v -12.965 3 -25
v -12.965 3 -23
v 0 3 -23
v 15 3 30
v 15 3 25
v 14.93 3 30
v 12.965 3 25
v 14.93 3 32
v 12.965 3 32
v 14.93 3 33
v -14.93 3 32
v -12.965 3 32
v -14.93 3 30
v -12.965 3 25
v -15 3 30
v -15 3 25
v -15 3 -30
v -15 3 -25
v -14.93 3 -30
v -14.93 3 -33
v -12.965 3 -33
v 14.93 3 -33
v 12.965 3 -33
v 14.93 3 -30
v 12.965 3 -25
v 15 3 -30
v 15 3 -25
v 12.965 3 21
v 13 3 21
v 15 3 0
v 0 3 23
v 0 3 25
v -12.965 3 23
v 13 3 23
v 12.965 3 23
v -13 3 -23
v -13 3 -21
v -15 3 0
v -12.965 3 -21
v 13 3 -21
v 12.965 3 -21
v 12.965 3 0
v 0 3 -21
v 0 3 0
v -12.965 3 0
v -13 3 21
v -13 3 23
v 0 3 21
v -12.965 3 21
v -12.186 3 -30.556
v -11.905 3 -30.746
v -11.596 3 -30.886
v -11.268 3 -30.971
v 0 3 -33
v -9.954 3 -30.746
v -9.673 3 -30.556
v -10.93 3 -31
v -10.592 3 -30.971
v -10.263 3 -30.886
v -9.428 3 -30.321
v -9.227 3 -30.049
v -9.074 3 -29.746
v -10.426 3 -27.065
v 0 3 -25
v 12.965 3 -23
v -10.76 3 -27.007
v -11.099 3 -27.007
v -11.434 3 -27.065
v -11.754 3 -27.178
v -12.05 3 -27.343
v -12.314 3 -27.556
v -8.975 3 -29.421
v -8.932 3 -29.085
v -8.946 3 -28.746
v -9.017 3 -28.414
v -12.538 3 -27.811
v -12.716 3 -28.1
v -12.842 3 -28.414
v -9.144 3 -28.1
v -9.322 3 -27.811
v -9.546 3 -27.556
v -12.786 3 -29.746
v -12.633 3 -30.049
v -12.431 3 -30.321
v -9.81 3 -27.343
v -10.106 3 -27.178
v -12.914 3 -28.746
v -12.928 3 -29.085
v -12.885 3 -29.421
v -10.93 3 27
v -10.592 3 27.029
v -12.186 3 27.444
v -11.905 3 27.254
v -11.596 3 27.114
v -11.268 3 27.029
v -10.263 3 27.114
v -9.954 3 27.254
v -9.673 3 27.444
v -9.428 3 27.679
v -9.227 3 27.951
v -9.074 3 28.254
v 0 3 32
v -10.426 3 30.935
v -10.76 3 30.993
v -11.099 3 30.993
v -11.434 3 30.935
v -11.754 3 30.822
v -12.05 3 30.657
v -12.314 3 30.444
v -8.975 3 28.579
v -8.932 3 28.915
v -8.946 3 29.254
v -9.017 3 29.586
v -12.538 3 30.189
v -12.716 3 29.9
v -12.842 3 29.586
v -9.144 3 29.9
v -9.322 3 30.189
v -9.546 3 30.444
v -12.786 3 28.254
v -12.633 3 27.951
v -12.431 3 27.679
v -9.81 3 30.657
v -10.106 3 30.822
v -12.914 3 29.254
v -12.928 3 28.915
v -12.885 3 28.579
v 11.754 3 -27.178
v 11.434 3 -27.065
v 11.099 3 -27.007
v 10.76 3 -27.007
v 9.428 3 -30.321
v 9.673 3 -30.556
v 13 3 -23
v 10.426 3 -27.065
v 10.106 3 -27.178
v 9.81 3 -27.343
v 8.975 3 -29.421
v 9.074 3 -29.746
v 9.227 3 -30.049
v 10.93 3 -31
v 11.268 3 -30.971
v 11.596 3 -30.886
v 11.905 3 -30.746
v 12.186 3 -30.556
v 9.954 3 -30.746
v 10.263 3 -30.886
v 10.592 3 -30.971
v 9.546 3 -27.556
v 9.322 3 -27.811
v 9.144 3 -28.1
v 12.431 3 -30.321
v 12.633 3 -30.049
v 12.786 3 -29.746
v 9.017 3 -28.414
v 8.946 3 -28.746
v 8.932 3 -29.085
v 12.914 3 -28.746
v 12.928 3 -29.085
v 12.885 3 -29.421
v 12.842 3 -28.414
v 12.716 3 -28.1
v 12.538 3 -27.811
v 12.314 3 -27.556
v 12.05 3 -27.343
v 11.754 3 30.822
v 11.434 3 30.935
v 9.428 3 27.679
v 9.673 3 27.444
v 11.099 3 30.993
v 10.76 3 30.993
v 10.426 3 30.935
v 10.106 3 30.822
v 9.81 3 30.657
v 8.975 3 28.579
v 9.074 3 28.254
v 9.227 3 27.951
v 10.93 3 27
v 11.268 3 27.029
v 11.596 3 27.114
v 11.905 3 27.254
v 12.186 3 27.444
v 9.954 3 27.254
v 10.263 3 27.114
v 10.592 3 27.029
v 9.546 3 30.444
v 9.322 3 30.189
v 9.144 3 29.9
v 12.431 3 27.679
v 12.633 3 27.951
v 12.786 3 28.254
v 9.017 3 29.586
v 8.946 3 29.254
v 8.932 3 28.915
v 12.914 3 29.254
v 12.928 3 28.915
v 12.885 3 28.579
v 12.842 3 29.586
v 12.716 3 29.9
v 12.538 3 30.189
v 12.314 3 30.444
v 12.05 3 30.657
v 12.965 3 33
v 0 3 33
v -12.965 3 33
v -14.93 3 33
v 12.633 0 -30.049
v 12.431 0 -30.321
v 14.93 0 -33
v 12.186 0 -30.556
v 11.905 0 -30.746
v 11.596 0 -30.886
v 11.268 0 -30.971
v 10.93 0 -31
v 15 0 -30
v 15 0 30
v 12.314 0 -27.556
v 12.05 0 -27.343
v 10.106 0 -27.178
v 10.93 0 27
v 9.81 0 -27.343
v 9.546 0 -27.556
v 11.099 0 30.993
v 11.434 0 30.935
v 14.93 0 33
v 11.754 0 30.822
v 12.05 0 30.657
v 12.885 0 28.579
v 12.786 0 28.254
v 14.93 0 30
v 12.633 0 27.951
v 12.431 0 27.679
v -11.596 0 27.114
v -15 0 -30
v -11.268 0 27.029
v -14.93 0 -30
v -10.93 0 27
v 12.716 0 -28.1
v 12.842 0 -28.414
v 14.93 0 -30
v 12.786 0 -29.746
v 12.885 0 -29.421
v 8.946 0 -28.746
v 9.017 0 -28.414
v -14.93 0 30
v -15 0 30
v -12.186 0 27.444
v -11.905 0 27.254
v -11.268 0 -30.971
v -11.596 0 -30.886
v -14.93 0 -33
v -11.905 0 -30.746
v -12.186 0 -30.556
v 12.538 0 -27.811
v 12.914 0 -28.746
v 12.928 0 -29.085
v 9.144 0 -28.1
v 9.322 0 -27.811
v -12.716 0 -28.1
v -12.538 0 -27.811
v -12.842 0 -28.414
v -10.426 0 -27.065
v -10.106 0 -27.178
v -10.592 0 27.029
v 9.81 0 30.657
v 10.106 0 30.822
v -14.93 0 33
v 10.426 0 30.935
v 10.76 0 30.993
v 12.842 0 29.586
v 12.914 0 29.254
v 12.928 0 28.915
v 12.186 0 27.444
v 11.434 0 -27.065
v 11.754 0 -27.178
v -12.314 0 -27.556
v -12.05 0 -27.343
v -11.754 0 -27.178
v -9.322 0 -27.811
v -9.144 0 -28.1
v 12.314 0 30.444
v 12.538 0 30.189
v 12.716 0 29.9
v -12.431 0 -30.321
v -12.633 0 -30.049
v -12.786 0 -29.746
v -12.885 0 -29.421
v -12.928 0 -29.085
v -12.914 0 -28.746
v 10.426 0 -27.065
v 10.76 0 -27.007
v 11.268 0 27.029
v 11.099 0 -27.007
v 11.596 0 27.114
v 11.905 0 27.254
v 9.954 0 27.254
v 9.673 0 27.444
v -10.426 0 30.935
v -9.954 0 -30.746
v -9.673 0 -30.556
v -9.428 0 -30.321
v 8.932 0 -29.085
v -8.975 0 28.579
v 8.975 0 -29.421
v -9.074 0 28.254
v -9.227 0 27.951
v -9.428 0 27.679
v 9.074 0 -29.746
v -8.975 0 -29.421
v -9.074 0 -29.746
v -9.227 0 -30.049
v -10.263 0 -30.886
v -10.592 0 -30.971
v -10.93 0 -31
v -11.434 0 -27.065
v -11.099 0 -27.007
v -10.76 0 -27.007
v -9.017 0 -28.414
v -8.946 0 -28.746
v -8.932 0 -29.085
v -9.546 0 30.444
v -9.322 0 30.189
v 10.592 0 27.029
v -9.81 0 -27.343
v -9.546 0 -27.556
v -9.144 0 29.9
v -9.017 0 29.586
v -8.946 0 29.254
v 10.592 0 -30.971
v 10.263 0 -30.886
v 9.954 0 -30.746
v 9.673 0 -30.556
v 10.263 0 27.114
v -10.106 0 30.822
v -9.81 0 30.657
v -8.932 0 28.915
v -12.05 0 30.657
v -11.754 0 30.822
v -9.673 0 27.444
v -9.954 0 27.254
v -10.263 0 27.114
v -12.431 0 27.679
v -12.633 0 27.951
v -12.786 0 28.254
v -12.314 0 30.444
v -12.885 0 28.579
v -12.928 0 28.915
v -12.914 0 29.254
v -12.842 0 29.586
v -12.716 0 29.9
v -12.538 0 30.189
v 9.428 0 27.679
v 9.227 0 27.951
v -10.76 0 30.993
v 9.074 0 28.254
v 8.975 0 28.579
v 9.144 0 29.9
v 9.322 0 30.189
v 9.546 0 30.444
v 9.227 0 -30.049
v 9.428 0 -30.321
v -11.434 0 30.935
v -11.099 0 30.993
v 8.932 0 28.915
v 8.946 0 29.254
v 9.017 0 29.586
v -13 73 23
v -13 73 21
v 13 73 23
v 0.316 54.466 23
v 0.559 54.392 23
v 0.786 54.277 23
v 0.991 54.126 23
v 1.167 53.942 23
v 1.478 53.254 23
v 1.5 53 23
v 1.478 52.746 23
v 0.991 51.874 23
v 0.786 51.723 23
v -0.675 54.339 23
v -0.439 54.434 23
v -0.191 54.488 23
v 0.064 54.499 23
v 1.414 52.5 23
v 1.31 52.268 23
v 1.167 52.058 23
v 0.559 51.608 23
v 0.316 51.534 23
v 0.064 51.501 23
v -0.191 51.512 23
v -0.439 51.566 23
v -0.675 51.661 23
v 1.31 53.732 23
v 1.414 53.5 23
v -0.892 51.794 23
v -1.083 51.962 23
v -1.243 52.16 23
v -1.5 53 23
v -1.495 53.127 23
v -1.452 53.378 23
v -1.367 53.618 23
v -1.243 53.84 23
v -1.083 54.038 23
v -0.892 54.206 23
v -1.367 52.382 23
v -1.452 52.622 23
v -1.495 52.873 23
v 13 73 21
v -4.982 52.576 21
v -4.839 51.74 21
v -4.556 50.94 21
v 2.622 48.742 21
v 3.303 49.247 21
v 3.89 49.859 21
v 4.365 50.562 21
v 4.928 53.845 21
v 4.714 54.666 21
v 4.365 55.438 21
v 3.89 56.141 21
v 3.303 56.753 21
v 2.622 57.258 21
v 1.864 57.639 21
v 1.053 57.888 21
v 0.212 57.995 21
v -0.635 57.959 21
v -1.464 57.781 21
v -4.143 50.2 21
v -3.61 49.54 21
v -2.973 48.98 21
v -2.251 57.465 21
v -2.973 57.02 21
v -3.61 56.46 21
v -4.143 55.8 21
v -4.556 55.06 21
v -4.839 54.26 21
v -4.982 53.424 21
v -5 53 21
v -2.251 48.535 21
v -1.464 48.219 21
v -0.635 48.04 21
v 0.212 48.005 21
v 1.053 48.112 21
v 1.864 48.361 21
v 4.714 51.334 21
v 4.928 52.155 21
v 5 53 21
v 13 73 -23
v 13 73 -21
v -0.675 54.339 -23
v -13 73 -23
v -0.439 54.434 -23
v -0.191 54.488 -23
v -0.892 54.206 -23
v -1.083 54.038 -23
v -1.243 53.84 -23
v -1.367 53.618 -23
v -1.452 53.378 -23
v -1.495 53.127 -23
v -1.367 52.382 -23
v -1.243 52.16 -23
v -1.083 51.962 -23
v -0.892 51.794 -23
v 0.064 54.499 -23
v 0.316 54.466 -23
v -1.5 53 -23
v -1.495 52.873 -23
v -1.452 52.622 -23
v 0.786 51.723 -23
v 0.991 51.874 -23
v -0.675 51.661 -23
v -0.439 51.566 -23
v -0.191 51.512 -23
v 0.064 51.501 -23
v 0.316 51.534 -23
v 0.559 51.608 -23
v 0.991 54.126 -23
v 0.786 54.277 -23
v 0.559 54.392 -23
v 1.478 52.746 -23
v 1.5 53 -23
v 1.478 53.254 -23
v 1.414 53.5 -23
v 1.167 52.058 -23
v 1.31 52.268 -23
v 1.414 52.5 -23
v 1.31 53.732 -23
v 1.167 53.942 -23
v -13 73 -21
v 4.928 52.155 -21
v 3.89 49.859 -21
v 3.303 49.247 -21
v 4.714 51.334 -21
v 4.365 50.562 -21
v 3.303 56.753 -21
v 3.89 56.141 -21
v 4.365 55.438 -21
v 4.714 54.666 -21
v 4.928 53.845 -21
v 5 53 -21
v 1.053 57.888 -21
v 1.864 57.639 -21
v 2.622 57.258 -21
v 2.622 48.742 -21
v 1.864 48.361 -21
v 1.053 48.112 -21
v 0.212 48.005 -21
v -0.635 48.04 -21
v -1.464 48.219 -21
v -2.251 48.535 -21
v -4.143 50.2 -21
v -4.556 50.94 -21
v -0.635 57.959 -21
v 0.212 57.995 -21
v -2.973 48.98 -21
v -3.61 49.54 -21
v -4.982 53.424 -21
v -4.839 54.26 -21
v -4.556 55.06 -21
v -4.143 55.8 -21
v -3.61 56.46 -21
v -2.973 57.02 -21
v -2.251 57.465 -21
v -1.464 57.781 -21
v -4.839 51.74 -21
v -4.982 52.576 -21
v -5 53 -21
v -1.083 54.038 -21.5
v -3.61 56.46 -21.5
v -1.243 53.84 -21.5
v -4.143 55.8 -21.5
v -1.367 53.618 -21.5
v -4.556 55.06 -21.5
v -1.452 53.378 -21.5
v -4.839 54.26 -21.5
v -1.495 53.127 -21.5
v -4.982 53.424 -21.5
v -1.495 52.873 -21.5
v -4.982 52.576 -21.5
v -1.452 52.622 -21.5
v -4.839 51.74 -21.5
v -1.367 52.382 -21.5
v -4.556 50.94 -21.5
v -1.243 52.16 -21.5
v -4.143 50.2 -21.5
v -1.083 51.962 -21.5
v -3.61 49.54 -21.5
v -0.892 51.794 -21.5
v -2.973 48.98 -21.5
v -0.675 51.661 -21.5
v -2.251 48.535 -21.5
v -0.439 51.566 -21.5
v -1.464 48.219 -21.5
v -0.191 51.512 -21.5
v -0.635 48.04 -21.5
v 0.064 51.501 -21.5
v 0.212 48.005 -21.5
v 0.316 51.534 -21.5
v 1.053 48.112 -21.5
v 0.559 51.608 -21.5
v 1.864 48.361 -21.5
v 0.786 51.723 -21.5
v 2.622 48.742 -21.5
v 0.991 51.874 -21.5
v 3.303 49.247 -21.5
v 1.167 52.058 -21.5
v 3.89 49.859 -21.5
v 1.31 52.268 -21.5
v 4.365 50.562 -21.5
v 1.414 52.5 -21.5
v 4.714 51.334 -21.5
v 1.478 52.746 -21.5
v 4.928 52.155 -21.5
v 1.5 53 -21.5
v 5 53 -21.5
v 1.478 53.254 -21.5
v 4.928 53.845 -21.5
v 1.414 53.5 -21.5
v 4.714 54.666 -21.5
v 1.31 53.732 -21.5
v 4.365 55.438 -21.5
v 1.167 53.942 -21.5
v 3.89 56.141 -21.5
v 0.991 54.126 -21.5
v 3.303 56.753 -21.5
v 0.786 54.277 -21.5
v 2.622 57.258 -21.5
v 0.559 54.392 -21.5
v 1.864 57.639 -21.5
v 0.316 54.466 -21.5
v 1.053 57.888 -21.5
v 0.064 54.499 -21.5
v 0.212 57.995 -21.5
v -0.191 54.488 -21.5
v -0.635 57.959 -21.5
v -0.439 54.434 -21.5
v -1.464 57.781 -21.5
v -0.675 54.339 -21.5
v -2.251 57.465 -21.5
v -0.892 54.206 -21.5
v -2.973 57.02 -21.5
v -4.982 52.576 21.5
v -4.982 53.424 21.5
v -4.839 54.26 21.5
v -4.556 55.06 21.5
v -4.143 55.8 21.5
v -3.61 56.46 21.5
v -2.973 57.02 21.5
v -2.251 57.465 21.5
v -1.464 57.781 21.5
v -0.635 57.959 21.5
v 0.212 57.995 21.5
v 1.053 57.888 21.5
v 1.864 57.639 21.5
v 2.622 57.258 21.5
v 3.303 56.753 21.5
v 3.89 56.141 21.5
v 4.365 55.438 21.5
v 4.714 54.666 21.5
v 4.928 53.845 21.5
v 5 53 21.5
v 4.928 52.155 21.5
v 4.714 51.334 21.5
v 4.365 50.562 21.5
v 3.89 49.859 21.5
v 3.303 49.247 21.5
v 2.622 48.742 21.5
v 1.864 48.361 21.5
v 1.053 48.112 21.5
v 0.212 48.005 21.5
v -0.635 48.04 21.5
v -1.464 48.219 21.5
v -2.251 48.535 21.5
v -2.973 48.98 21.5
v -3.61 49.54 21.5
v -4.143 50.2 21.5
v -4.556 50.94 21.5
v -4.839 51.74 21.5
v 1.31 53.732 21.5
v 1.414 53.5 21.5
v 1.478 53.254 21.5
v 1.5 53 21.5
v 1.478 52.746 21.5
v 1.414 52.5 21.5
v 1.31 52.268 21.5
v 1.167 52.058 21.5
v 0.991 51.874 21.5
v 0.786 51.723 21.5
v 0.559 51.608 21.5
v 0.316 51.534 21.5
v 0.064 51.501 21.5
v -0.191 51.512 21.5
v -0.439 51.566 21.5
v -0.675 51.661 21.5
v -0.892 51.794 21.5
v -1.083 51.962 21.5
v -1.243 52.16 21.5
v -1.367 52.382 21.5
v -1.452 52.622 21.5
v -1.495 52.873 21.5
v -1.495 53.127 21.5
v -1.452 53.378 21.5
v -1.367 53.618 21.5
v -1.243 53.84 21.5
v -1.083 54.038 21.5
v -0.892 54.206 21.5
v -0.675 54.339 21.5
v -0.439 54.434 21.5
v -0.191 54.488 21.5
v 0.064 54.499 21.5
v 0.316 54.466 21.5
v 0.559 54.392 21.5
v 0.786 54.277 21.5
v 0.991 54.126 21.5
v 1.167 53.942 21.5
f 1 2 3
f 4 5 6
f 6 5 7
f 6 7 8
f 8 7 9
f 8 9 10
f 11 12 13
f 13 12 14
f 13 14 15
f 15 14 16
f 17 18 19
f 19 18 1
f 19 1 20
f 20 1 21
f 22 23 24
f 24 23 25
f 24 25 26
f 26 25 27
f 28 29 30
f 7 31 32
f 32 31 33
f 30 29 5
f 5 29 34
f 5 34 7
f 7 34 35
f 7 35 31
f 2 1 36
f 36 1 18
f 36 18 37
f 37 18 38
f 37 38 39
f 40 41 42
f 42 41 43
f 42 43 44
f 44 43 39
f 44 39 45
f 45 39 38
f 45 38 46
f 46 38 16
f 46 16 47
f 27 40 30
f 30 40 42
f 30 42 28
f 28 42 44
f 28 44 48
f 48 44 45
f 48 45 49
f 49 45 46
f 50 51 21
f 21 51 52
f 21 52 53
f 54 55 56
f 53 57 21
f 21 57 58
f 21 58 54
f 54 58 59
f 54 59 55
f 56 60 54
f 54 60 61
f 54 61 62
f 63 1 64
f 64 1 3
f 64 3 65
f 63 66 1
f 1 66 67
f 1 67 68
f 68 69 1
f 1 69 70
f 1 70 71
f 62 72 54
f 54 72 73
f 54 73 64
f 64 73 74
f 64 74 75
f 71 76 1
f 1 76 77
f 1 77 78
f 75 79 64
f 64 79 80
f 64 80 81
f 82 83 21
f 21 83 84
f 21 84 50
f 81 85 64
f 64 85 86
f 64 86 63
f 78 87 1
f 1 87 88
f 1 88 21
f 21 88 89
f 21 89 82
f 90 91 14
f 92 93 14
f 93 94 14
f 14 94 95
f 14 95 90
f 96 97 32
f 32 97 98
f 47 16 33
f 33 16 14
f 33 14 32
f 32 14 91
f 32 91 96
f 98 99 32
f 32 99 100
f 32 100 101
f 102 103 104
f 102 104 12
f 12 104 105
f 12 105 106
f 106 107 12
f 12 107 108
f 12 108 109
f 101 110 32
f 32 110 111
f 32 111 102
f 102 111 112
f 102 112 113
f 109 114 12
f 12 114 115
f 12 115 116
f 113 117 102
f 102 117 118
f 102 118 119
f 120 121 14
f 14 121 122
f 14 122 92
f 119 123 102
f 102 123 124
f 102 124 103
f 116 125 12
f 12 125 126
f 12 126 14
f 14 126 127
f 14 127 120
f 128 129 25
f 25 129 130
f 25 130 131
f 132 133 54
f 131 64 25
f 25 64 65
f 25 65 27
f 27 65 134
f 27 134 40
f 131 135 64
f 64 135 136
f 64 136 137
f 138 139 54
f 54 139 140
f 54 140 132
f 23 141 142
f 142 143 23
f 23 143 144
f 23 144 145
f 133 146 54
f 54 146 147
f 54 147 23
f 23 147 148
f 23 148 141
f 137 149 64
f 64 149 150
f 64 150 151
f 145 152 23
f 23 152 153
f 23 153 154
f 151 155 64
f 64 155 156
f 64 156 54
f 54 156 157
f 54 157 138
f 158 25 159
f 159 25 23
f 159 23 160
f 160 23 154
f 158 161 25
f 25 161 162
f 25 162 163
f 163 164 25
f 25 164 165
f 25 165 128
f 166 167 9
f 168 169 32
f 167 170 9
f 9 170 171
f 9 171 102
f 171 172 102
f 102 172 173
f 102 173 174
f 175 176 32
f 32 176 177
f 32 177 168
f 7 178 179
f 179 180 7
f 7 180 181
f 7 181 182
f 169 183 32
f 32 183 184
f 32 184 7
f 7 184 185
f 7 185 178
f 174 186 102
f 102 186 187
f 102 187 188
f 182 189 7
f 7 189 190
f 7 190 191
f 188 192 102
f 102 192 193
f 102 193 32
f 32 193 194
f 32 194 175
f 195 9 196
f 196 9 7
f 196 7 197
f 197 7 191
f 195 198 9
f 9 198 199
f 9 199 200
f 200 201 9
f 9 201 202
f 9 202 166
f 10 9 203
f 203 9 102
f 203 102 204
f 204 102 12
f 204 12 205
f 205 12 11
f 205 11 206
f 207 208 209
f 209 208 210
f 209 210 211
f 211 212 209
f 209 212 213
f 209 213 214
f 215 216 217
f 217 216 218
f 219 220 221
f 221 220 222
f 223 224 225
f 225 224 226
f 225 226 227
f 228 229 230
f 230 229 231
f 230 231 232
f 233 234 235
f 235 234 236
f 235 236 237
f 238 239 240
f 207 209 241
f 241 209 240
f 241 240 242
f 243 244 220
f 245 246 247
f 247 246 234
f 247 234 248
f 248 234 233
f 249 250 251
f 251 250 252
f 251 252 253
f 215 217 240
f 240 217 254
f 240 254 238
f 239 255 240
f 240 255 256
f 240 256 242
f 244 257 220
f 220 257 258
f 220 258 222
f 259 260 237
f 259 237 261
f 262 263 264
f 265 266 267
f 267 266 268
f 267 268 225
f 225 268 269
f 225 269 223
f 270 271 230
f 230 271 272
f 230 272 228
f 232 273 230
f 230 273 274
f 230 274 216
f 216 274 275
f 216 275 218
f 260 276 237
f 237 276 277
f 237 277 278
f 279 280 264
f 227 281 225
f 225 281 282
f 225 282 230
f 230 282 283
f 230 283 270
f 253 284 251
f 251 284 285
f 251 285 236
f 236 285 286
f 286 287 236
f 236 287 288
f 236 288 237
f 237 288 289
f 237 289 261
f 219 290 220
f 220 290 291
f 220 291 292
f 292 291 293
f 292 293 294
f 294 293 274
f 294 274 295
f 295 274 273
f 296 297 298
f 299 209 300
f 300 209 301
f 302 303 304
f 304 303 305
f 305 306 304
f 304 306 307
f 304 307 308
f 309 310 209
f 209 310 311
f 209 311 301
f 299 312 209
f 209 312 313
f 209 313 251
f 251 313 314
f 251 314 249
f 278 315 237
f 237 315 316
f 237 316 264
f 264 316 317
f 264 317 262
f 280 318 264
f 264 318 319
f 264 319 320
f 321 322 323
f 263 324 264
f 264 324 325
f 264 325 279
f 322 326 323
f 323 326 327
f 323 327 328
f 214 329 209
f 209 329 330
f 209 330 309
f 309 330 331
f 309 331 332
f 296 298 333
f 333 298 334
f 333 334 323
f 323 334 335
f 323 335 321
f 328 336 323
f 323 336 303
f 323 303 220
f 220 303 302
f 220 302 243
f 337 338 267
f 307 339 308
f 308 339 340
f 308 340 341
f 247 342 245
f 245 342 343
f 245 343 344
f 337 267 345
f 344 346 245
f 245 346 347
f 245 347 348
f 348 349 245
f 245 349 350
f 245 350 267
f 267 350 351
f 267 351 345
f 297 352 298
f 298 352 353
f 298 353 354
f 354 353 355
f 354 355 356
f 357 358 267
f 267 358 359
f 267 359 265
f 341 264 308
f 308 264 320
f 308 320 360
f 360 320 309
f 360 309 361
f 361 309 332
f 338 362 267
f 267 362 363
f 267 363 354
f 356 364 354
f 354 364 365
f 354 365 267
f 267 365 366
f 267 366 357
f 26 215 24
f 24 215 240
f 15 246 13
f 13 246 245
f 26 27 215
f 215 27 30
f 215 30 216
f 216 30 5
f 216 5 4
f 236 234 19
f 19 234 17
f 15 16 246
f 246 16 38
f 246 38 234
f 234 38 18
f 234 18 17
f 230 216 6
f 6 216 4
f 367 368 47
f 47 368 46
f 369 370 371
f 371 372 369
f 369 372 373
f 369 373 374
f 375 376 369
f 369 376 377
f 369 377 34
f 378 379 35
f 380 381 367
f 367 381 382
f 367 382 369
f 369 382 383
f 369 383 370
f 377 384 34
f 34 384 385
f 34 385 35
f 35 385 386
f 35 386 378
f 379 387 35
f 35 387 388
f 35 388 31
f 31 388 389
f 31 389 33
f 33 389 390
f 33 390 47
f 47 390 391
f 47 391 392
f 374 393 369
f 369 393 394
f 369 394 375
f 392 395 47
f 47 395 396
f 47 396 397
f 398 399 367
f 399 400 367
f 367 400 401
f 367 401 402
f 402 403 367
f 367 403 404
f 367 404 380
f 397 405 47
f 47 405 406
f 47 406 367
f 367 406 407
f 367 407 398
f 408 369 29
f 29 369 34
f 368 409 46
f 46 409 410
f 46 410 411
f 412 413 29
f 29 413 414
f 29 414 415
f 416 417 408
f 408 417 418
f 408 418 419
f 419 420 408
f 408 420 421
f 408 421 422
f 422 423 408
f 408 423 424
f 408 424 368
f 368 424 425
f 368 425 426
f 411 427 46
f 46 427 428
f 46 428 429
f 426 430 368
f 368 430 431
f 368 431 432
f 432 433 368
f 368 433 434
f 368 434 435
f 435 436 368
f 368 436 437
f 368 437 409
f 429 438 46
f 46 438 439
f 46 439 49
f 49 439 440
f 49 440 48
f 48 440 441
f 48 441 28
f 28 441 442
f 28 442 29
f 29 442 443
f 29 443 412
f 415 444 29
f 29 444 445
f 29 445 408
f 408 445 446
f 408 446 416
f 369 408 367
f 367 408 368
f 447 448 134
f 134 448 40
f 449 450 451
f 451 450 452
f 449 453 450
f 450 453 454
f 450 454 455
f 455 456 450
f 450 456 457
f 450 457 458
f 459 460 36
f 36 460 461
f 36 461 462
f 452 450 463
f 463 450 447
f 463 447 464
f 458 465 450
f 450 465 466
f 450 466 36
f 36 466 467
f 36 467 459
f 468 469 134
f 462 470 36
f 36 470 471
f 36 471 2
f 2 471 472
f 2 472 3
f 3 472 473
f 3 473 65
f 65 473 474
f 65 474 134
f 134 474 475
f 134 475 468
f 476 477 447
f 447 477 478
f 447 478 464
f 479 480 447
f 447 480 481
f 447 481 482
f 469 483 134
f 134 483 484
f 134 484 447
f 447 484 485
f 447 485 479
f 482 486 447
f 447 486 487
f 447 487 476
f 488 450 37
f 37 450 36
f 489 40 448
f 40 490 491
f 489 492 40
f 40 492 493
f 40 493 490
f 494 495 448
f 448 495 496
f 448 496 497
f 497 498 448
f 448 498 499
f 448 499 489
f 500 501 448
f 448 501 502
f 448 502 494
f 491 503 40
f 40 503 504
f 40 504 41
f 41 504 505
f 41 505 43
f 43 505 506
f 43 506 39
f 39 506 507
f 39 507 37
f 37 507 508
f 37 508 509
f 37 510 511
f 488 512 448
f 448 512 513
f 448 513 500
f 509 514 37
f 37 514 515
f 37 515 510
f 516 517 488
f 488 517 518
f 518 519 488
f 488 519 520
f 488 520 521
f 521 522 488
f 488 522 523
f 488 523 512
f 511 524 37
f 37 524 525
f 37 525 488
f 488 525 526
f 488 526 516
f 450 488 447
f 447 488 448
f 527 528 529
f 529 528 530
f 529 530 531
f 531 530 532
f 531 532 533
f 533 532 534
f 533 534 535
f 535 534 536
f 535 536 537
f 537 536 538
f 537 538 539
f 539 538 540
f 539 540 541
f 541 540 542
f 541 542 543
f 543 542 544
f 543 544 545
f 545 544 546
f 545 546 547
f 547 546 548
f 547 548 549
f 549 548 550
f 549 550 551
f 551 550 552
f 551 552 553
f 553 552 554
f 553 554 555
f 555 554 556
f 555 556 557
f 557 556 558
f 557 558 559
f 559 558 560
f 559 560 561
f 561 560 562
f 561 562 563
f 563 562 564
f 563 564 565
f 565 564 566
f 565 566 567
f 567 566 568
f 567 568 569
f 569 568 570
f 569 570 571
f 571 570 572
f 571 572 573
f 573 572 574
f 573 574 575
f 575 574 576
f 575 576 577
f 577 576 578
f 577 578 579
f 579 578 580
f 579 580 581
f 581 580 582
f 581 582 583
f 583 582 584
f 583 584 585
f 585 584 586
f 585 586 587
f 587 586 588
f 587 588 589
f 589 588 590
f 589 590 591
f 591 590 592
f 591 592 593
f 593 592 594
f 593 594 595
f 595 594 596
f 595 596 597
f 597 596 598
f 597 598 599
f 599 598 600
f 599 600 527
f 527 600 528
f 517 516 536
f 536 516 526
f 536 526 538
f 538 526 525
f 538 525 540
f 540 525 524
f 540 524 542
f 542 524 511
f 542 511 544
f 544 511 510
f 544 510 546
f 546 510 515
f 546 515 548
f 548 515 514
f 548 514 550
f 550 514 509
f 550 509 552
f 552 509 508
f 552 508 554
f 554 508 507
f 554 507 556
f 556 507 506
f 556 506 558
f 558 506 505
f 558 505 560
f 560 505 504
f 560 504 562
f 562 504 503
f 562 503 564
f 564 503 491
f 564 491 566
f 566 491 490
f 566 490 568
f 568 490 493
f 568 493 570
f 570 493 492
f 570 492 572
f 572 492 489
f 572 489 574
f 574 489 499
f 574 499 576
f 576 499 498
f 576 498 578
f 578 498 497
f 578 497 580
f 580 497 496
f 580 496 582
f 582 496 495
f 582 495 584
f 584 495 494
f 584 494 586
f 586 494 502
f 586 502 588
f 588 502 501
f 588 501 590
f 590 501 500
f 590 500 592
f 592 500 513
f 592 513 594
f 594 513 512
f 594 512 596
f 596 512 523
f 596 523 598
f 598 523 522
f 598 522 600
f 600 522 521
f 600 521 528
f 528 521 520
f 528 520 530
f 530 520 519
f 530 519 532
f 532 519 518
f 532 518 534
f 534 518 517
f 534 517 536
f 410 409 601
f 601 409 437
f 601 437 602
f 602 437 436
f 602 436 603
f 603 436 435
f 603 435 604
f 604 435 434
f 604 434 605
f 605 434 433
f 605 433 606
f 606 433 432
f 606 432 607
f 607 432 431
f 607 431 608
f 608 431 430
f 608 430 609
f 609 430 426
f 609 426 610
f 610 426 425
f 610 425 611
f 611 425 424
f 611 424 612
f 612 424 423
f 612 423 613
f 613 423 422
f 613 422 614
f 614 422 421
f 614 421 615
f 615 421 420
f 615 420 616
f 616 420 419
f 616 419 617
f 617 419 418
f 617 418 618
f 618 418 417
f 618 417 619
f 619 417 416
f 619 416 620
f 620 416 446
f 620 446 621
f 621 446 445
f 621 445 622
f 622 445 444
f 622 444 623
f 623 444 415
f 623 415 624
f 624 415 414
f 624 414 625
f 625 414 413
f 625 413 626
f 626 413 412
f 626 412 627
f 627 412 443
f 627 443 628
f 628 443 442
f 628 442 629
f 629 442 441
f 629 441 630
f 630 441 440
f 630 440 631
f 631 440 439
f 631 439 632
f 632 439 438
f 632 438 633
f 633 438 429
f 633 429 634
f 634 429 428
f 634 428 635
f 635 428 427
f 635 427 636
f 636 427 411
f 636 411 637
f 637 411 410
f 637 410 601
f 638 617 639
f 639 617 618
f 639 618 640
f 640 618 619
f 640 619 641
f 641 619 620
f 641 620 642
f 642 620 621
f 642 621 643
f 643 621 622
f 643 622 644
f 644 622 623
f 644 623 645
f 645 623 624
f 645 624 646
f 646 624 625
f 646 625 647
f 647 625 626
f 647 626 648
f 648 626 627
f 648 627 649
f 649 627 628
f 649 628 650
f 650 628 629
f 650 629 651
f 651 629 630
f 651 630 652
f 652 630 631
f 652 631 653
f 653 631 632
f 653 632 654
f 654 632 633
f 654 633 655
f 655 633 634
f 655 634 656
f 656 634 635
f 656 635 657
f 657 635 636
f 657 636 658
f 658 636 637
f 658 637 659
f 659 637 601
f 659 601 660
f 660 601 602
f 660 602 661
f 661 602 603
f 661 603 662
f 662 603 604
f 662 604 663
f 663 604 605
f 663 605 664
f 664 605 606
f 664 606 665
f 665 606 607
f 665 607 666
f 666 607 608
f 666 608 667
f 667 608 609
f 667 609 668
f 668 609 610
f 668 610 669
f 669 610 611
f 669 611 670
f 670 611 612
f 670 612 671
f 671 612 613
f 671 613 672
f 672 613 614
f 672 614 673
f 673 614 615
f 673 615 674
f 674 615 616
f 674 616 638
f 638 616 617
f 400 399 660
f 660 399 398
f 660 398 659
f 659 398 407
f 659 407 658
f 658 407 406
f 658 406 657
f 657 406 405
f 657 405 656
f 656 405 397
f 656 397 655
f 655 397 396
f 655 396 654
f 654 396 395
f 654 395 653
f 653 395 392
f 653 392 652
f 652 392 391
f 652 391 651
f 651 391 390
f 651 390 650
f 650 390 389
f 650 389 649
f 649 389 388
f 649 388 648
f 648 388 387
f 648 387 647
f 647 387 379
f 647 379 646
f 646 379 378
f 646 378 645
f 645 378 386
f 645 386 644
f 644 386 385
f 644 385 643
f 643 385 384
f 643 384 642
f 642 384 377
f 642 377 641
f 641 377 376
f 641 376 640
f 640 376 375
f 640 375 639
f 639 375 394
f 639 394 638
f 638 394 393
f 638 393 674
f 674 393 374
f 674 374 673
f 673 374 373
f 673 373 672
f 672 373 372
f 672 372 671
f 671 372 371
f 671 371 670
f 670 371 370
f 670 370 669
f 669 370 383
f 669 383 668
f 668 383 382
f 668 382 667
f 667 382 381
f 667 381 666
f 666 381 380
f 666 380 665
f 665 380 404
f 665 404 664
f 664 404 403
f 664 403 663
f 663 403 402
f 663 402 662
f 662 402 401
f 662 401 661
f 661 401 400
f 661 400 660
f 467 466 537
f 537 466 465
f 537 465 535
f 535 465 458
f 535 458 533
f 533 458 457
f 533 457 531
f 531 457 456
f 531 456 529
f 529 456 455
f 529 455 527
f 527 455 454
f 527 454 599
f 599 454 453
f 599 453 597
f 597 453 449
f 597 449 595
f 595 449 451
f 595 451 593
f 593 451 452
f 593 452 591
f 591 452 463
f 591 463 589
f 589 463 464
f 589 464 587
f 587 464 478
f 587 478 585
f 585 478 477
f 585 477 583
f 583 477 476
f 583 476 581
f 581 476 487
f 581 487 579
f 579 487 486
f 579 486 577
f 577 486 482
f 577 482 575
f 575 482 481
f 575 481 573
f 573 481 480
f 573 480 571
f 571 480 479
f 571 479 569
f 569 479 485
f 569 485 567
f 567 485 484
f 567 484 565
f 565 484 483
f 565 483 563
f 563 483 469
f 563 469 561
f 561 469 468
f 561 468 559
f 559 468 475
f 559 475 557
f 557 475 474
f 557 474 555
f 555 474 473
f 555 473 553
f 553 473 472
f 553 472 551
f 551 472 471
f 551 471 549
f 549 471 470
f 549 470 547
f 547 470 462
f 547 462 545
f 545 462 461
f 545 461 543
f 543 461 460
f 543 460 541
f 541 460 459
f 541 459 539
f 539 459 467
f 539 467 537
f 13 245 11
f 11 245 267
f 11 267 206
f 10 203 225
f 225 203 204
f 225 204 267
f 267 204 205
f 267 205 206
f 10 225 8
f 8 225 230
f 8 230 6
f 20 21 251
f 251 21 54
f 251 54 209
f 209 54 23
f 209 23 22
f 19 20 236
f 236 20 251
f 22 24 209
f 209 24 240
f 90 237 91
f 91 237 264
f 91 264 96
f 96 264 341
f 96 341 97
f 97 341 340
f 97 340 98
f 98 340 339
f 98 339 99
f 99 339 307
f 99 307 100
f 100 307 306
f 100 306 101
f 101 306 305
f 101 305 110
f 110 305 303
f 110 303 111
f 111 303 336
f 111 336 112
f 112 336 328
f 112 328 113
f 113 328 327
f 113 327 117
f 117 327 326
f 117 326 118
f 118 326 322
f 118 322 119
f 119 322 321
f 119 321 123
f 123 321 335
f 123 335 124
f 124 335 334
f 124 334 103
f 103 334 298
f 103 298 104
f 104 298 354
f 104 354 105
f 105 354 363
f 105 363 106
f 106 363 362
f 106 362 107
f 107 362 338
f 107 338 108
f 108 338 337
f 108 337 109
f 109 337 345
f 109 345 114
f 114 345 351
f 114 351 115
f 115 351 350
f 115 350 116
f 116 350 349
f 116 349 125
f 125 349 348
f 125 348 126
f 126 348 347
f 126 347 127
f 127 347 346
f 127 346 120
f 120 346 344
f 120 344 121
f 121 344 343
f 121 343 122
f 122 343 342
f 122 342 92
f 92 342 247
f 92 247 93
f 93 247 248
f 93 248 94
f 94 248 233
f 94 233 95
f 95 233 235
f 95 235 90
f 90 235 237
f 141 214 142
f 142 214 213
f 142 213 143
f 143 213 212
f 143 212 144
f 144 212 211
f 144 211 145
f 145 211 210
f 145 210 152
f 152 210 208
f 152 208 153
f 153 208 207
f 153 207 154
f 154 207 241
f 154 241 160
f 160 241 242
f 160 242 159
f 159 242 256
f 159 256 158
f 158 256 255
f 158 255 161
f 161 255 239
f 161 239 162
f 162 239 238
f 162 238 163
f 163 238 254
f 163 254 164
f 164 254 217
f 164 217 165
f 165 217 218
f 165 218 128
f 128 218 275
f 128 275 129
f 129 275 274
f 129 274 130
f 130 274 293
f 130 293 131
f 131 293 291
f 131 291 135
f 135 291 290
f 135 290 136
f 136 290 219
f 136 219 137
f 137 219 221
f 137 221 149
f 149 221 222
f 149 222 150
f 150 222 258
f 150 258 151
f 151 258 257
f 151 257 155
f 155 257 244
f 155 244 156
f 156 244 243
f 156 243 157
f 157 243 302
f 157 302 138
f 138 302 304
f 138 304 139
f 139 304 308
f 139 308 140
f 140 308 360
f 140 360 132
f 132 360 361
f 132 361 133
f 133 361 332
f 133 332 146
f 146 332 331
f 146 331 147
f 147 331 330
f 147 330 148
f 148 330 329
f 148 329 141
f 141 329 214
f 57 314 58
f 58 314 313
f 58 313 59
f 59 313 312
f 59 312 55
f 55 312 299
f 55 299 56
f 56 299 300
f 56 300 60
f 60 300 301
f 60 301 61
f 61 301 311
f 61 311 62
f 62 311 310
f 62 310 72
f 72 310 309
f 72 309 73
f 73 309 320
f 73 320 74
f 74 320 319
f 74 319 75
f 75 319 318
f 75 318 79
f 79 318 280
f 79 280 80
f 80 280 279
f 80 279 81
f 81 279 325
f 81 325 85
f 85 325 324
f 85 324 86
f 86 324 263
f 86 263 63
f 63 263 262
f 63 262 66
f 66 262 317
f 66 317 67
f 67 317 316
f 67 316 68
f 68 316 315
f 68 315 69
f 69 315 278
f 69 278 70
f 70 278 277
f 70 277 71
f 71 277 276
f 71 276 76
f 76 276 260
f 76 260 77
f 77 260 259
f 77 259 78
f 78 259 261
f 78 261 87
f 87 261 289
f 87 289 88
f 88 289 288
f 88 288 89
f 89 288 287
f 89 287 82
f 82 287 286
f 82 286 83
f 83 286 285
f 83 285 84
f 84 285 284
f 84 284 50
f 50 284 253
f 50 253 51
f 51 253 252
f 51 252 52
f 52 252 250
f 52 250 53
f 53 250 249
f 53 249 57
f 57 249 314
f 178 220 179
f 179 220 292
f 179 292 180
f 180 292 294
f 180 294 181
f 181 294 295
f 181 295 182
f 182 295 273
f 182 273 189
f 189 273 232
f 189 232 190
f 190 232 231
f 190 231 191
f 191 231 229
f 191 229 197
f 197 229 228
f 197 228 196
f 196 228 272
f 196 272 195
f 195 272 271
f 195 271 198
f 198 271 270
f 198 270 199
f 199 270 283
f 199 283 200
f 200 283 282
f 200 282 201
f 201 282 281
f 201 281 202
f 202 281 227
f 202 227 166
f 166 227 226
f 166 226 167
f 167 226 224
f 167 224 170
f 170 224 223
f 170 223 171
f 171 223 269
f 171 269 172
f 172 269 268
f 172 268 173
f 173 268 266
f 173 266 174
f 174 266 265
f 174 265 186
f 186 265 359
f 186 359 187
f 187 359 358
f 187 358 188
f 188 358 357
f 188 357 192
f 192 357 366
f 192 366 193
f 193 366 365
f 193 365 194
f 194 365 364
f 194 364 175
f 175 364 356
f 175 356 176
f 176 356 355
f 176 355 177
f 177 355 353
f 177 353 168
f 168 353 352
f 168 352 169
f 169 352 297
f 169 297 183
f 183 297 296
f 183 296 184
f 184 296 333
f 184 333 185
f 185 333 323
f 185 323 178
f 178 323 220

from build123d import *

# Parameters (mm, degrees)
SKETCH_1_W               = 30
SKETCH_1_H               = 60
EXTRUDE_1_DEPTH          = 3
SKETCH_2_W               = 26
SKETCH_2_H               = 2
EXTRUDE_3_DEPTH          = 70
SKETCH_4_R               = 5
CUT_EXTRUDE_2_DEPTH      = 21.5
CUT_EXTRUDE_3_DEPTH      = 91.58835466
CUT_EXTRUDE_3_DEPTH_BACK = 91.58835466
SKETCH_5_R               = 1.5
SKETCH_7_W               = 29.85954739
SKETCH_7_H               = 3
EXTRUDE_4_DEPTH          = 3
CUT_EXTRUDE_5_DEPTH      = 82.504601097
CUT_EXTRUDE_5_DEPTH_BACK = 82.504601097
SKETCH_8_R               = 2


with BuildPart() as part:
    # 草图1 → 凸台-拉伸1 (new body)
    with BuildSketch(Plane(origin=(0, 0, 0), x_dir=(1, 0, 0), z_dir=(0, 1, 0))):
        Rectangle(SKETCH_1_W, SKETCH_1_H)
    extrude(amount=EXTRUDE_1_DEPTH)

    # 草图2 → 凸台-拉伸3 (add)
    with BuildSketch(Plane(origin=(0, 3, 0), x_dir=(1, 0, 0), z_dir=(0, 1, 0))):
        with Locations((0, 22)):
            Rectangle(SKETCH_2_W, SKETCH_2_H)
        with Locations((0, -22)):
            Rectangle(SKETCH_2_W, SKETCH_2_H)
    extrude(amount=EXTRUDE_3_DEPTH)

    # 草图4 → 切除-拉伸2 (cut, symmetric)
    with BuildSketch(Plane.XY):
        with Locations((0, 53)):
            Circle(SKETCH_4_R)
    extrude(amount=CUT_EXTRUDE_2_DEPTH, both=True, mode=Mode.SUBTRACT)

    # 草图5 → 切除-拉伸3 (cut, two sides: drawn at the far end of the back side and taken through both)
    with BuildSketch(Plane.XY.offset(-21.5).offset(-CUT_EXTRUDE_3_DEPTH_BACK)):
        with Locations((0, 53)):
            Circle(SKETCH_5_R)
    extrude(amount=CUT_EXTRUDE_3_DEPTH + CUT_EXTRUDE_3_DEPTH_BACK, mode=Mode.SUBTRACT)

    # 草图7 → 凸台-拉伸4 (add)
    with BuildSketch(Plane.XZ):
        Polygon((-14.929773695, 33), (-14.929773695, 30), (-12, 30), (14.929773695, 30), (14.929773695, 33), align=None)
        with Locations((0, -31.5)):
            Rectangle(SKETCH_7_W, SKETCH_7_H)
    extrude(amount=-EXTRUDE_4_DEPTH)

    # 草图8 → 切除-拉伸5 (cut, two sides: drawn at the far end of the back side and taken through both)
    with BuildSketch(Plane.XZ.offset(-CUT_EXTRUDE_5_DEPTH_BACK)):
        with BuildLine():
            ThreePointArc((-8.929773695, 29), (-9.515560133, 30.414213562), (-10.929773695, 31))
            Line((-10.929773695, 31), (-10.929773695, 29))
            Line((-10.929773695, 29), (-12.929773695, 29))
            ThreePointArc((-12.929773695, 29), (-10.929773695, 27), (-8.929773695, 29))
        make_face()
        with BuildLine():
            Line((-10.929773695, 29), (-10.929773695, 31))
            ThreePointArc((-10.929773695, 31), (-12.343987258, 30.414213562), (-12.929773695, 29))
            Line((-12.929773695, 29), (-10.929773695, 29))
        make_face()
        with Locations(Location((10.929773695, 29, 0), (0, 0, 270))):
            Circle(SKETCH_8_R)
        with Locations(Location((-10.929773695, -29, 0), (0, 0, 270))):
            Circle(SKETCH_8_R)
        with Locations(Location((10.929773695, -29, 0), (0, 0, 270))):
            Circle(SKETCH_8_R)
    extrude(amount=CUT_EXTRUDE_5_DEPTH + CUT_EXTRUDE_5_DEPTH_BACK, mode=Mode.SUBTRACT)


solid = part.part
